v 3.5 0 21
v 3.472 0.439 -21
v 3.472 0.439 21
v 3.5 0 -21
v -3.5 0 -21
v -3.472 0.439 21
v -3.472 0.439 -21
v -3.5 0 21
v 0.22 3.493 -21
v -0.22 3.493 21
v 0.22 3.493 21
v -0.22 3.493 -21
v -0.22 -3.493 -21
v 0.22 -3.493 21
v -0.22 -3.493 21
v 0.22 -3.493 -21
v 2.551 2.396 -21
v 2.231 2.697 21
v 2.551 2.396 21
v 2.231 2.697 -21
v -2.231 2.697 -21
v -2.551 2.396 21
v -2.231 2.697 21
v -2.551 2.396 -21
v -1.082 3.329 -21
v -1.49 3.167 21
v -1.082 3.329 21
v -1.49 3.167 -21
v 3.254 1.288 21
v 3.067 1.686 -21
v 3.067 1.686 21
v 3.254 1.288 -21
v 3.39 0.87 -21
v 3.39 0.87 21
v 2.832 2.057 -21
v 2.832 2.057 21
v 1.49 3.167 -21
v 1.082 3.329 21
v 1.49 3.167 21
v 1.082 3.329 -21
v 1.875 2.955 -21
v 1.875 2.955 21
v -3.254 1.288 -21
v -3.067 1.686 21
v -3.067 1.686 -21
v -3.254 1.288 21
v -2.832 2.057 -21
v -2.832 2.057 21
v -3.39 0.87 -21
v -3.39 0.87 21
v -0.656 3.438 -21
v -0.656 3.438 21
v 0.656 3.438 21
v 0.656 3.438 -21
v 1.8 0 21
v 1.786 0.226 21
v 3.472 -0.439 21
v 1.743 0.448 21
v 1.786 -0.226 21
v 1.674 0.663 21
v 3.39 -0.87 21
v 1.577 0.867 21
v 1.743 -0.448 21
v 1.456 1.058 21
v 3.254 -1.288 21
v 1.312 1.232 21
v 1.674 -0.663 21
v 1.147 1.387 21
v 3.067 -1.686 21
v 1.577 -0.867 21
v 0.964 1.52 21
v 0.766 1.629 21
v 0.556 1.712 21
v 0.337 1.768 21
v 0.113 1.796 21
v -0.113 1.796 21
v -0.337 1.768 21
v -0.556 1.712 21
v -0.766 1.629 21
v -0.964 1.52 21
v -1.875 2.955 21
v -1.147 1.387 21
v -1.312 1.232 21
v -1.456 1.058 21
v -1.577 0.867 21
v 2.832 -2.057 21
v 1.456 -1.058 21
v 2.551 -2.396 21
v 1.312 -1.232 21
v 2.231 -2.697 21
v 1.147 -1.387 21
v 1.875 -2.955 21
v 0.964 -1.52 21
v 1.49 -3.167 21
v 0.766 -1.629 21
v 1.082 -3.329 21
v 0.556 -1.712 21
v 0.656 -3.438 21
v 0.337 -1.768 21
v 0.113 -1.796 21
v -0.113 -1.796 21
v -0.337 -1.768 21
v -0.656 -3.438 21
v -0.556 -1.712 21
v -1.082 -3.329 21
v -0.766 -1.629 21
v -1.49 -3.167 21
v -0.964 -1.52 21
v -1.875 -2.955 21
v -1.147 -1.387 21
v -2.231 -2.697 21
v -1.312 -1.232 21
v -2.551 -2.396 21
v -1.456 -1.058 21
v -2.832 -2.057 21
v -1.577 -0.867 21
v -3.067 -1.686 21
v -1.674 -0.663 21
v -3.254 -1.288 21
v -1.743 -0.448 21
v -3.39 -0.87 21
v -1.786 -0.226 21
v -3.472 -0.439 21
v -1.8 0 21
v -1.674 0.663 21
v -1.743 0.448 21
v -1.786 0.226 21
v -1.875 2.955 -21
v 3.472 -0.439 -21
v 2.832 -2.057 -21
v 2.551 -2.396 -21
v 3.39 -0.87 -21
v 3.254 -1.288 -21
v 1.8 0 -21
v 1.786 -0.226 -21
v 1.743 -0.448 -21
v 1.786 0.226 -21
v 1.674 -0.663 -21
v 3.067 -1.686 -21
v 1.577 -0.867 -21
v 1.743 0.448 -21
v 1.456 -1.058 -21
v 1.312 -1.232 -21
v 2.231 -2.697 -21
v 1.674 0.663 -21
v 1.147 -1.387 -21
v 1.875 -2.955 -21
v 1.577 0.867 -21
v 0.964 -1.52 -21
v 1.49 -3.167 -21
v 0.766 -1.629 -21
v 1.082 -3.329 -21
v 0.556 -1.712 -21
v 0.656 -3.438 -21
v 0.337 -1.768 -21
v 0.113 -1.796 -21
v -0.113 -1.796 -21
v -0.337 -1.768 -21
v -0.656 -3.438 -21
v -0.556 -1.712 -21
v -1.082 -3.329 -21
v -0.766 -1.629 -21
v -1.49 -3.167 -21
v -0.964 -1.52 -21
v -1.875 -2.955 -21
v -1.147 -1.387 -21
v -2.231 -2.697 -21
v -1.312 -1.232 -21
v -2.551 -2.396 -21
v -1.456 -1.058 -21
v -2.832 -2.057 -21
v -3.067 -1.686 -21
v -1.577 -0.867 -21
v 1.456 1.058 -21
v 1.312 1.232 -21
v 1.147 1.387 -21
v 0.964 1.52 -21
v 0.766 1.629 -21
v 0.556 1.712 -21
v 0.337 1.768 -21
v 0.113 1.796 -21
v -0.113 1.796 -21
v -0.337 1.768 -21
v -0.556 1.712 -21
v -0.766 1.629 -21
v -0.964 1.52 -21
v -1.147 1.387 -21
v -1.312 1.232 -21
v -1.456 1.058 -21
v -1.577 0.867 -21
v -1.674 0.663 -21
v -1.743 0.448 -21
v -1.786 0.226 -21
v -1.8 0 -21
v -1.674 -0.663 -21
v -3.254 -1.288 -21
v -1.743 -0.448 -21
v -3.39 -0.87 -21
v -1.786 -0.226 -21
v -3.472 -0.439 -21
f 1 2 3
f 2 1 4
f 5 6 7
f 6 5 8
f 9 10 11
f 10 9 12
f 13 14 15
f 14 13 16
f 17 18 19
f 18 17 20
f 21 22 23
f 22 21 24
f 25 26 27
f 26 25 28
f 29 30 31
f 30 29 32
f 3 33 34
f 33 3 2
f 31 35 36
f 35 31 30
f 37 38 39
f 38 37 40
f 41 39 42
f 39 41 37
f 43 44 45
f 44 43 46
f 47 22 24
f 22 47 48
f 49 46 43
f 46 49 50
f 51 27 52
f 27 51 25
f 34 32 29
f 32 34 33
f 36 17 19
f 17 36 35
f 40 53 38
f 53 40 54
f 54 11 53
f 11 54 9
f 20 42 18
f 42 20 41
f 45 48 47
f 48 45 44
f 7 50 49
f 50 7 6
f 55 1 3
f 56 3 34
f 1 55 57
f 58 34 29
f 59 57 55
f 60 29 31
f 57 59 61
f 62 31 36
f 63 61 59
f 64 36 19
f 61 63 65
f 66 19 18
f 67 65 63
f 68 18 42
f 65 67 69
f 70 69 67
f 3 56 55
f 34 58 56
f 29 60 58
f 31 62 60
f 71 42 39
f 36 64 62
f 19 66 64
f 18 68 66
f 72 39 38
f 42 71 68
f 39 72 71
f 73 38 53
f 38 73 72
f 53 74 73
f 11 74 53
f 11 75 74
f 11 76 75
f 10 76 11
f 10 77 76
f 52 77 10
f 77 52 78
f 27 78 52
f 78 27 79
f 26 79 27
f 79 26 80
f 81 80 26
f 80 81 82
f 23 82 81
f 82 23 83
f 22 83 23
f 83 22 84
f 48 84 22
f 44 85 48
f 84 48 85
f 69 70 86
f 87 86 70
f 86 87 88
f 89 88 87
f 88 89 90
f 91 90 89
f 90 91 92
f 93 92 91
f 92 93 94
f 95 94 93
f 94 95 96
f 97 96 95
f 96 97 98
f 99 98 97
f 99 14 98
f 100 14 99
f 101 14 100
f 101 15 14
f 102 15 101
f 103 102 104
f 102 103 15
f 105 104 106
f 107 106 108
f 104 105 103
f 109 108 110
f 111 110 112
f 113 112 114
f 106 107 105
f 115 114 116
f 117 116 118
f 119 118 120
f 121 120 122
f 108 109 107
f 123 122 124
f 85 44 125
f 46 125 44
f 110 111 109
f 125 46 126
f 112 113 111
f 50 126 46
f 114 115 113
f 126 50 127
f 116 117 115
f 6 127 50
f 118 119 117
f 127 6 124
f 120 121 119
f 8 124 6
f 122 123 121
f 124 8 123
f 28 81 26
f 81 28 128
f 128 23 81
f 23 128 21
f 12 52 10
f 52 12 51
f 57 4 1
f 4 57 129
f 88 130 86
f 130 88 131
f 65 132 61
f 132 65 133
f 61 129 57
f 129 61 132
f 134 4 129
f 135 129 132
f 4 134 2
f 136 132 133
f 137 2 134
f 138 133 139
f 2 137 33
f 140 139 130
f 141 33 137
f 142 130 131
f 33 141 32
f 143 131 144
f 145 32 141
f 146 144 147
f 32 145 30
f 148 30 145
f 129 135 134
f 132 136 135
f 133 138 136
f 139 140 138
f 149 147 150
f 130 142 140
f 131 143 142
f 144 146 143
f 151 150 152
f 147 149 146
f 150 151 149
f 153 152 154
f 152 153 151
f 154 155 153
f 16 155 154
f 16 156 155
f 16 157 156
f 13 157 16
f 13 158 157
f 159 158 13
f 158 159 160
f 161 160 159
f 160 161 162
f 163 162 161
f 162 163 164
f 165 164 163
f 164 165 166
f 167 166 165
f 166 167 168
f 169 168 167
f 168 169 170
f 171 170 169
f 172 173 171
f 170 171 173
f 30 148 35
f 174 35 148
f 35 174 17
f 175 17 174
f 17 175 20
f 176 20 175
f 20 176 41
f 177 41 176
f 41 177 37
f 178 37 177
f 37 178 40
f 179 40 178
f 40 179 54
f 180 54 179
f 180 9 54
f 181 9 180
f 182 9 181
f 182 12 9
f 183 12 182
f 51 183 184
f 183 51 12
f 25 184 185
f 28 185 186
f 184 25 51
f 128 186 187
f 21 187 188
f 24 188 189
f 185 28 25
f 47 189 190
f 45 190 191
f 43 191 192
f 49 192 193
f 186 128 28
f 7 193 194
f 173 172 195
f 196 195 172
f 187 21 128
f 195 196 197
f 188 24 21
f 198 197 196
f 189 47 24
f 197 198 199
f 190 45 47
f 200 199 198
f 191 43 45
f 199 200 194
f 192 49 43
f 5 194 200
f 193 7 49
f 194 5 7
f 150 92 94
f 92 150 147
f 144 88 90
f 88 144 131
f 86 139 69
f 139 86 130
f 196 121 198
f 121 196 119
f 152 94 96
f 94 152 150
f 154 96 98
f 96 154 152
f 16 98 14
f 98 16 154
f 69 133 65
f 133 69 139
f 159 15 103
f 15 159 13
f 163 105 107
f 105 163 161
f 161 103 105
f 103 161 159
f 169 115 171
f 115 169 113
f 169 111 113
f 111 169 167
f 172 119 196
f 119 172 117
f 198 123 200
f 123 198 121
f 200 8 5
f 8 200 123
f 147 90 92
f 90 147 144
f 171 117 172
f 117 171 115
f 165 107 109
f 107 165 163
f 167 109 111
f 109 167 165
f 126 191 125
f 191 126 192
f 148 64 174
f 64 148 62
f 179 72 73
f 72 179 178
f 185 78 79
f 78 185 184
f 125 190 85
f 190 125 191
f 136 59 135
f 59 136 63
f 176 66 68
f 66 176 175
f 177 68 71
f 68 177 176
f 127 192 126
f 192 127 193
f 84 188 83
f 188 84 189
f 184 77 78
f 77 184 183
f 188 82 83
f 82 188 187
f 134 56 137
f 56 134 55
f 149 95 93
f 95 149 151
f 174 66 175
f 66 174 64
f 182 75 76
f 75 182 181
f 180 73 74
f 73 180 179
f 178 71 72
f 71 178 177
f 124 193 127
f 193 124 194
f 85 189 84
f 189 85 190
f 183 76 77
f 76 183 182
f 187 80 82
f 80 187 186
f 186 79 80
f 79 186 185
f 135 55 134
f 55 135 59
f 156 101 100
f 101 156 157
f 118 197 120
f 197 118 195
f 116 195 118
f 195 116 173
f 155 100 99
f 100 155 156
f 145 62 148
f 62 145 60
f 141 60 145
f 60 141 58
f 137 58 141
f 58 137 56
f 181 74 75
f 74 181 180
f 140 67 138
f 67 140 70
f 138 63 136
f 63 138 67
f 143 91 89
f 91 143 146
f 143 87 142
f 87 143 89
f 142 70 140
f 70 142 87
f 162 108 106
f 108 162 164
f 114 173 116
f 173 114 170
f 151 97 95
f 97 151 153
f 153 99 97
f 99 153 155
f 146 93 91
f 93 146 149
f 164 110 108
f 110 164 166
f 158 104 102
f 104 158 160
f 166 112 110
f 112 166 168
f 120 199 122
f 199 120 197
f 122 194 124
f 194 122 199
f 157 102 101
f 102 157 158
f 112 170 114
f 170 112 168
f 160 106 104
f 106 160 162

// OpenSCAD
$fn = 50;


difference() {
	union() {
		translate(v = [0, 0, -21.0000000000]) {
			cylinder(h = 42, r = 3.5000000000);
		}
	}
	union() {
		translate(v = [0, 0, -100.0000000000]) {
			cylinder(h = 200, r = 1.8000000000);
		}
	}
}
